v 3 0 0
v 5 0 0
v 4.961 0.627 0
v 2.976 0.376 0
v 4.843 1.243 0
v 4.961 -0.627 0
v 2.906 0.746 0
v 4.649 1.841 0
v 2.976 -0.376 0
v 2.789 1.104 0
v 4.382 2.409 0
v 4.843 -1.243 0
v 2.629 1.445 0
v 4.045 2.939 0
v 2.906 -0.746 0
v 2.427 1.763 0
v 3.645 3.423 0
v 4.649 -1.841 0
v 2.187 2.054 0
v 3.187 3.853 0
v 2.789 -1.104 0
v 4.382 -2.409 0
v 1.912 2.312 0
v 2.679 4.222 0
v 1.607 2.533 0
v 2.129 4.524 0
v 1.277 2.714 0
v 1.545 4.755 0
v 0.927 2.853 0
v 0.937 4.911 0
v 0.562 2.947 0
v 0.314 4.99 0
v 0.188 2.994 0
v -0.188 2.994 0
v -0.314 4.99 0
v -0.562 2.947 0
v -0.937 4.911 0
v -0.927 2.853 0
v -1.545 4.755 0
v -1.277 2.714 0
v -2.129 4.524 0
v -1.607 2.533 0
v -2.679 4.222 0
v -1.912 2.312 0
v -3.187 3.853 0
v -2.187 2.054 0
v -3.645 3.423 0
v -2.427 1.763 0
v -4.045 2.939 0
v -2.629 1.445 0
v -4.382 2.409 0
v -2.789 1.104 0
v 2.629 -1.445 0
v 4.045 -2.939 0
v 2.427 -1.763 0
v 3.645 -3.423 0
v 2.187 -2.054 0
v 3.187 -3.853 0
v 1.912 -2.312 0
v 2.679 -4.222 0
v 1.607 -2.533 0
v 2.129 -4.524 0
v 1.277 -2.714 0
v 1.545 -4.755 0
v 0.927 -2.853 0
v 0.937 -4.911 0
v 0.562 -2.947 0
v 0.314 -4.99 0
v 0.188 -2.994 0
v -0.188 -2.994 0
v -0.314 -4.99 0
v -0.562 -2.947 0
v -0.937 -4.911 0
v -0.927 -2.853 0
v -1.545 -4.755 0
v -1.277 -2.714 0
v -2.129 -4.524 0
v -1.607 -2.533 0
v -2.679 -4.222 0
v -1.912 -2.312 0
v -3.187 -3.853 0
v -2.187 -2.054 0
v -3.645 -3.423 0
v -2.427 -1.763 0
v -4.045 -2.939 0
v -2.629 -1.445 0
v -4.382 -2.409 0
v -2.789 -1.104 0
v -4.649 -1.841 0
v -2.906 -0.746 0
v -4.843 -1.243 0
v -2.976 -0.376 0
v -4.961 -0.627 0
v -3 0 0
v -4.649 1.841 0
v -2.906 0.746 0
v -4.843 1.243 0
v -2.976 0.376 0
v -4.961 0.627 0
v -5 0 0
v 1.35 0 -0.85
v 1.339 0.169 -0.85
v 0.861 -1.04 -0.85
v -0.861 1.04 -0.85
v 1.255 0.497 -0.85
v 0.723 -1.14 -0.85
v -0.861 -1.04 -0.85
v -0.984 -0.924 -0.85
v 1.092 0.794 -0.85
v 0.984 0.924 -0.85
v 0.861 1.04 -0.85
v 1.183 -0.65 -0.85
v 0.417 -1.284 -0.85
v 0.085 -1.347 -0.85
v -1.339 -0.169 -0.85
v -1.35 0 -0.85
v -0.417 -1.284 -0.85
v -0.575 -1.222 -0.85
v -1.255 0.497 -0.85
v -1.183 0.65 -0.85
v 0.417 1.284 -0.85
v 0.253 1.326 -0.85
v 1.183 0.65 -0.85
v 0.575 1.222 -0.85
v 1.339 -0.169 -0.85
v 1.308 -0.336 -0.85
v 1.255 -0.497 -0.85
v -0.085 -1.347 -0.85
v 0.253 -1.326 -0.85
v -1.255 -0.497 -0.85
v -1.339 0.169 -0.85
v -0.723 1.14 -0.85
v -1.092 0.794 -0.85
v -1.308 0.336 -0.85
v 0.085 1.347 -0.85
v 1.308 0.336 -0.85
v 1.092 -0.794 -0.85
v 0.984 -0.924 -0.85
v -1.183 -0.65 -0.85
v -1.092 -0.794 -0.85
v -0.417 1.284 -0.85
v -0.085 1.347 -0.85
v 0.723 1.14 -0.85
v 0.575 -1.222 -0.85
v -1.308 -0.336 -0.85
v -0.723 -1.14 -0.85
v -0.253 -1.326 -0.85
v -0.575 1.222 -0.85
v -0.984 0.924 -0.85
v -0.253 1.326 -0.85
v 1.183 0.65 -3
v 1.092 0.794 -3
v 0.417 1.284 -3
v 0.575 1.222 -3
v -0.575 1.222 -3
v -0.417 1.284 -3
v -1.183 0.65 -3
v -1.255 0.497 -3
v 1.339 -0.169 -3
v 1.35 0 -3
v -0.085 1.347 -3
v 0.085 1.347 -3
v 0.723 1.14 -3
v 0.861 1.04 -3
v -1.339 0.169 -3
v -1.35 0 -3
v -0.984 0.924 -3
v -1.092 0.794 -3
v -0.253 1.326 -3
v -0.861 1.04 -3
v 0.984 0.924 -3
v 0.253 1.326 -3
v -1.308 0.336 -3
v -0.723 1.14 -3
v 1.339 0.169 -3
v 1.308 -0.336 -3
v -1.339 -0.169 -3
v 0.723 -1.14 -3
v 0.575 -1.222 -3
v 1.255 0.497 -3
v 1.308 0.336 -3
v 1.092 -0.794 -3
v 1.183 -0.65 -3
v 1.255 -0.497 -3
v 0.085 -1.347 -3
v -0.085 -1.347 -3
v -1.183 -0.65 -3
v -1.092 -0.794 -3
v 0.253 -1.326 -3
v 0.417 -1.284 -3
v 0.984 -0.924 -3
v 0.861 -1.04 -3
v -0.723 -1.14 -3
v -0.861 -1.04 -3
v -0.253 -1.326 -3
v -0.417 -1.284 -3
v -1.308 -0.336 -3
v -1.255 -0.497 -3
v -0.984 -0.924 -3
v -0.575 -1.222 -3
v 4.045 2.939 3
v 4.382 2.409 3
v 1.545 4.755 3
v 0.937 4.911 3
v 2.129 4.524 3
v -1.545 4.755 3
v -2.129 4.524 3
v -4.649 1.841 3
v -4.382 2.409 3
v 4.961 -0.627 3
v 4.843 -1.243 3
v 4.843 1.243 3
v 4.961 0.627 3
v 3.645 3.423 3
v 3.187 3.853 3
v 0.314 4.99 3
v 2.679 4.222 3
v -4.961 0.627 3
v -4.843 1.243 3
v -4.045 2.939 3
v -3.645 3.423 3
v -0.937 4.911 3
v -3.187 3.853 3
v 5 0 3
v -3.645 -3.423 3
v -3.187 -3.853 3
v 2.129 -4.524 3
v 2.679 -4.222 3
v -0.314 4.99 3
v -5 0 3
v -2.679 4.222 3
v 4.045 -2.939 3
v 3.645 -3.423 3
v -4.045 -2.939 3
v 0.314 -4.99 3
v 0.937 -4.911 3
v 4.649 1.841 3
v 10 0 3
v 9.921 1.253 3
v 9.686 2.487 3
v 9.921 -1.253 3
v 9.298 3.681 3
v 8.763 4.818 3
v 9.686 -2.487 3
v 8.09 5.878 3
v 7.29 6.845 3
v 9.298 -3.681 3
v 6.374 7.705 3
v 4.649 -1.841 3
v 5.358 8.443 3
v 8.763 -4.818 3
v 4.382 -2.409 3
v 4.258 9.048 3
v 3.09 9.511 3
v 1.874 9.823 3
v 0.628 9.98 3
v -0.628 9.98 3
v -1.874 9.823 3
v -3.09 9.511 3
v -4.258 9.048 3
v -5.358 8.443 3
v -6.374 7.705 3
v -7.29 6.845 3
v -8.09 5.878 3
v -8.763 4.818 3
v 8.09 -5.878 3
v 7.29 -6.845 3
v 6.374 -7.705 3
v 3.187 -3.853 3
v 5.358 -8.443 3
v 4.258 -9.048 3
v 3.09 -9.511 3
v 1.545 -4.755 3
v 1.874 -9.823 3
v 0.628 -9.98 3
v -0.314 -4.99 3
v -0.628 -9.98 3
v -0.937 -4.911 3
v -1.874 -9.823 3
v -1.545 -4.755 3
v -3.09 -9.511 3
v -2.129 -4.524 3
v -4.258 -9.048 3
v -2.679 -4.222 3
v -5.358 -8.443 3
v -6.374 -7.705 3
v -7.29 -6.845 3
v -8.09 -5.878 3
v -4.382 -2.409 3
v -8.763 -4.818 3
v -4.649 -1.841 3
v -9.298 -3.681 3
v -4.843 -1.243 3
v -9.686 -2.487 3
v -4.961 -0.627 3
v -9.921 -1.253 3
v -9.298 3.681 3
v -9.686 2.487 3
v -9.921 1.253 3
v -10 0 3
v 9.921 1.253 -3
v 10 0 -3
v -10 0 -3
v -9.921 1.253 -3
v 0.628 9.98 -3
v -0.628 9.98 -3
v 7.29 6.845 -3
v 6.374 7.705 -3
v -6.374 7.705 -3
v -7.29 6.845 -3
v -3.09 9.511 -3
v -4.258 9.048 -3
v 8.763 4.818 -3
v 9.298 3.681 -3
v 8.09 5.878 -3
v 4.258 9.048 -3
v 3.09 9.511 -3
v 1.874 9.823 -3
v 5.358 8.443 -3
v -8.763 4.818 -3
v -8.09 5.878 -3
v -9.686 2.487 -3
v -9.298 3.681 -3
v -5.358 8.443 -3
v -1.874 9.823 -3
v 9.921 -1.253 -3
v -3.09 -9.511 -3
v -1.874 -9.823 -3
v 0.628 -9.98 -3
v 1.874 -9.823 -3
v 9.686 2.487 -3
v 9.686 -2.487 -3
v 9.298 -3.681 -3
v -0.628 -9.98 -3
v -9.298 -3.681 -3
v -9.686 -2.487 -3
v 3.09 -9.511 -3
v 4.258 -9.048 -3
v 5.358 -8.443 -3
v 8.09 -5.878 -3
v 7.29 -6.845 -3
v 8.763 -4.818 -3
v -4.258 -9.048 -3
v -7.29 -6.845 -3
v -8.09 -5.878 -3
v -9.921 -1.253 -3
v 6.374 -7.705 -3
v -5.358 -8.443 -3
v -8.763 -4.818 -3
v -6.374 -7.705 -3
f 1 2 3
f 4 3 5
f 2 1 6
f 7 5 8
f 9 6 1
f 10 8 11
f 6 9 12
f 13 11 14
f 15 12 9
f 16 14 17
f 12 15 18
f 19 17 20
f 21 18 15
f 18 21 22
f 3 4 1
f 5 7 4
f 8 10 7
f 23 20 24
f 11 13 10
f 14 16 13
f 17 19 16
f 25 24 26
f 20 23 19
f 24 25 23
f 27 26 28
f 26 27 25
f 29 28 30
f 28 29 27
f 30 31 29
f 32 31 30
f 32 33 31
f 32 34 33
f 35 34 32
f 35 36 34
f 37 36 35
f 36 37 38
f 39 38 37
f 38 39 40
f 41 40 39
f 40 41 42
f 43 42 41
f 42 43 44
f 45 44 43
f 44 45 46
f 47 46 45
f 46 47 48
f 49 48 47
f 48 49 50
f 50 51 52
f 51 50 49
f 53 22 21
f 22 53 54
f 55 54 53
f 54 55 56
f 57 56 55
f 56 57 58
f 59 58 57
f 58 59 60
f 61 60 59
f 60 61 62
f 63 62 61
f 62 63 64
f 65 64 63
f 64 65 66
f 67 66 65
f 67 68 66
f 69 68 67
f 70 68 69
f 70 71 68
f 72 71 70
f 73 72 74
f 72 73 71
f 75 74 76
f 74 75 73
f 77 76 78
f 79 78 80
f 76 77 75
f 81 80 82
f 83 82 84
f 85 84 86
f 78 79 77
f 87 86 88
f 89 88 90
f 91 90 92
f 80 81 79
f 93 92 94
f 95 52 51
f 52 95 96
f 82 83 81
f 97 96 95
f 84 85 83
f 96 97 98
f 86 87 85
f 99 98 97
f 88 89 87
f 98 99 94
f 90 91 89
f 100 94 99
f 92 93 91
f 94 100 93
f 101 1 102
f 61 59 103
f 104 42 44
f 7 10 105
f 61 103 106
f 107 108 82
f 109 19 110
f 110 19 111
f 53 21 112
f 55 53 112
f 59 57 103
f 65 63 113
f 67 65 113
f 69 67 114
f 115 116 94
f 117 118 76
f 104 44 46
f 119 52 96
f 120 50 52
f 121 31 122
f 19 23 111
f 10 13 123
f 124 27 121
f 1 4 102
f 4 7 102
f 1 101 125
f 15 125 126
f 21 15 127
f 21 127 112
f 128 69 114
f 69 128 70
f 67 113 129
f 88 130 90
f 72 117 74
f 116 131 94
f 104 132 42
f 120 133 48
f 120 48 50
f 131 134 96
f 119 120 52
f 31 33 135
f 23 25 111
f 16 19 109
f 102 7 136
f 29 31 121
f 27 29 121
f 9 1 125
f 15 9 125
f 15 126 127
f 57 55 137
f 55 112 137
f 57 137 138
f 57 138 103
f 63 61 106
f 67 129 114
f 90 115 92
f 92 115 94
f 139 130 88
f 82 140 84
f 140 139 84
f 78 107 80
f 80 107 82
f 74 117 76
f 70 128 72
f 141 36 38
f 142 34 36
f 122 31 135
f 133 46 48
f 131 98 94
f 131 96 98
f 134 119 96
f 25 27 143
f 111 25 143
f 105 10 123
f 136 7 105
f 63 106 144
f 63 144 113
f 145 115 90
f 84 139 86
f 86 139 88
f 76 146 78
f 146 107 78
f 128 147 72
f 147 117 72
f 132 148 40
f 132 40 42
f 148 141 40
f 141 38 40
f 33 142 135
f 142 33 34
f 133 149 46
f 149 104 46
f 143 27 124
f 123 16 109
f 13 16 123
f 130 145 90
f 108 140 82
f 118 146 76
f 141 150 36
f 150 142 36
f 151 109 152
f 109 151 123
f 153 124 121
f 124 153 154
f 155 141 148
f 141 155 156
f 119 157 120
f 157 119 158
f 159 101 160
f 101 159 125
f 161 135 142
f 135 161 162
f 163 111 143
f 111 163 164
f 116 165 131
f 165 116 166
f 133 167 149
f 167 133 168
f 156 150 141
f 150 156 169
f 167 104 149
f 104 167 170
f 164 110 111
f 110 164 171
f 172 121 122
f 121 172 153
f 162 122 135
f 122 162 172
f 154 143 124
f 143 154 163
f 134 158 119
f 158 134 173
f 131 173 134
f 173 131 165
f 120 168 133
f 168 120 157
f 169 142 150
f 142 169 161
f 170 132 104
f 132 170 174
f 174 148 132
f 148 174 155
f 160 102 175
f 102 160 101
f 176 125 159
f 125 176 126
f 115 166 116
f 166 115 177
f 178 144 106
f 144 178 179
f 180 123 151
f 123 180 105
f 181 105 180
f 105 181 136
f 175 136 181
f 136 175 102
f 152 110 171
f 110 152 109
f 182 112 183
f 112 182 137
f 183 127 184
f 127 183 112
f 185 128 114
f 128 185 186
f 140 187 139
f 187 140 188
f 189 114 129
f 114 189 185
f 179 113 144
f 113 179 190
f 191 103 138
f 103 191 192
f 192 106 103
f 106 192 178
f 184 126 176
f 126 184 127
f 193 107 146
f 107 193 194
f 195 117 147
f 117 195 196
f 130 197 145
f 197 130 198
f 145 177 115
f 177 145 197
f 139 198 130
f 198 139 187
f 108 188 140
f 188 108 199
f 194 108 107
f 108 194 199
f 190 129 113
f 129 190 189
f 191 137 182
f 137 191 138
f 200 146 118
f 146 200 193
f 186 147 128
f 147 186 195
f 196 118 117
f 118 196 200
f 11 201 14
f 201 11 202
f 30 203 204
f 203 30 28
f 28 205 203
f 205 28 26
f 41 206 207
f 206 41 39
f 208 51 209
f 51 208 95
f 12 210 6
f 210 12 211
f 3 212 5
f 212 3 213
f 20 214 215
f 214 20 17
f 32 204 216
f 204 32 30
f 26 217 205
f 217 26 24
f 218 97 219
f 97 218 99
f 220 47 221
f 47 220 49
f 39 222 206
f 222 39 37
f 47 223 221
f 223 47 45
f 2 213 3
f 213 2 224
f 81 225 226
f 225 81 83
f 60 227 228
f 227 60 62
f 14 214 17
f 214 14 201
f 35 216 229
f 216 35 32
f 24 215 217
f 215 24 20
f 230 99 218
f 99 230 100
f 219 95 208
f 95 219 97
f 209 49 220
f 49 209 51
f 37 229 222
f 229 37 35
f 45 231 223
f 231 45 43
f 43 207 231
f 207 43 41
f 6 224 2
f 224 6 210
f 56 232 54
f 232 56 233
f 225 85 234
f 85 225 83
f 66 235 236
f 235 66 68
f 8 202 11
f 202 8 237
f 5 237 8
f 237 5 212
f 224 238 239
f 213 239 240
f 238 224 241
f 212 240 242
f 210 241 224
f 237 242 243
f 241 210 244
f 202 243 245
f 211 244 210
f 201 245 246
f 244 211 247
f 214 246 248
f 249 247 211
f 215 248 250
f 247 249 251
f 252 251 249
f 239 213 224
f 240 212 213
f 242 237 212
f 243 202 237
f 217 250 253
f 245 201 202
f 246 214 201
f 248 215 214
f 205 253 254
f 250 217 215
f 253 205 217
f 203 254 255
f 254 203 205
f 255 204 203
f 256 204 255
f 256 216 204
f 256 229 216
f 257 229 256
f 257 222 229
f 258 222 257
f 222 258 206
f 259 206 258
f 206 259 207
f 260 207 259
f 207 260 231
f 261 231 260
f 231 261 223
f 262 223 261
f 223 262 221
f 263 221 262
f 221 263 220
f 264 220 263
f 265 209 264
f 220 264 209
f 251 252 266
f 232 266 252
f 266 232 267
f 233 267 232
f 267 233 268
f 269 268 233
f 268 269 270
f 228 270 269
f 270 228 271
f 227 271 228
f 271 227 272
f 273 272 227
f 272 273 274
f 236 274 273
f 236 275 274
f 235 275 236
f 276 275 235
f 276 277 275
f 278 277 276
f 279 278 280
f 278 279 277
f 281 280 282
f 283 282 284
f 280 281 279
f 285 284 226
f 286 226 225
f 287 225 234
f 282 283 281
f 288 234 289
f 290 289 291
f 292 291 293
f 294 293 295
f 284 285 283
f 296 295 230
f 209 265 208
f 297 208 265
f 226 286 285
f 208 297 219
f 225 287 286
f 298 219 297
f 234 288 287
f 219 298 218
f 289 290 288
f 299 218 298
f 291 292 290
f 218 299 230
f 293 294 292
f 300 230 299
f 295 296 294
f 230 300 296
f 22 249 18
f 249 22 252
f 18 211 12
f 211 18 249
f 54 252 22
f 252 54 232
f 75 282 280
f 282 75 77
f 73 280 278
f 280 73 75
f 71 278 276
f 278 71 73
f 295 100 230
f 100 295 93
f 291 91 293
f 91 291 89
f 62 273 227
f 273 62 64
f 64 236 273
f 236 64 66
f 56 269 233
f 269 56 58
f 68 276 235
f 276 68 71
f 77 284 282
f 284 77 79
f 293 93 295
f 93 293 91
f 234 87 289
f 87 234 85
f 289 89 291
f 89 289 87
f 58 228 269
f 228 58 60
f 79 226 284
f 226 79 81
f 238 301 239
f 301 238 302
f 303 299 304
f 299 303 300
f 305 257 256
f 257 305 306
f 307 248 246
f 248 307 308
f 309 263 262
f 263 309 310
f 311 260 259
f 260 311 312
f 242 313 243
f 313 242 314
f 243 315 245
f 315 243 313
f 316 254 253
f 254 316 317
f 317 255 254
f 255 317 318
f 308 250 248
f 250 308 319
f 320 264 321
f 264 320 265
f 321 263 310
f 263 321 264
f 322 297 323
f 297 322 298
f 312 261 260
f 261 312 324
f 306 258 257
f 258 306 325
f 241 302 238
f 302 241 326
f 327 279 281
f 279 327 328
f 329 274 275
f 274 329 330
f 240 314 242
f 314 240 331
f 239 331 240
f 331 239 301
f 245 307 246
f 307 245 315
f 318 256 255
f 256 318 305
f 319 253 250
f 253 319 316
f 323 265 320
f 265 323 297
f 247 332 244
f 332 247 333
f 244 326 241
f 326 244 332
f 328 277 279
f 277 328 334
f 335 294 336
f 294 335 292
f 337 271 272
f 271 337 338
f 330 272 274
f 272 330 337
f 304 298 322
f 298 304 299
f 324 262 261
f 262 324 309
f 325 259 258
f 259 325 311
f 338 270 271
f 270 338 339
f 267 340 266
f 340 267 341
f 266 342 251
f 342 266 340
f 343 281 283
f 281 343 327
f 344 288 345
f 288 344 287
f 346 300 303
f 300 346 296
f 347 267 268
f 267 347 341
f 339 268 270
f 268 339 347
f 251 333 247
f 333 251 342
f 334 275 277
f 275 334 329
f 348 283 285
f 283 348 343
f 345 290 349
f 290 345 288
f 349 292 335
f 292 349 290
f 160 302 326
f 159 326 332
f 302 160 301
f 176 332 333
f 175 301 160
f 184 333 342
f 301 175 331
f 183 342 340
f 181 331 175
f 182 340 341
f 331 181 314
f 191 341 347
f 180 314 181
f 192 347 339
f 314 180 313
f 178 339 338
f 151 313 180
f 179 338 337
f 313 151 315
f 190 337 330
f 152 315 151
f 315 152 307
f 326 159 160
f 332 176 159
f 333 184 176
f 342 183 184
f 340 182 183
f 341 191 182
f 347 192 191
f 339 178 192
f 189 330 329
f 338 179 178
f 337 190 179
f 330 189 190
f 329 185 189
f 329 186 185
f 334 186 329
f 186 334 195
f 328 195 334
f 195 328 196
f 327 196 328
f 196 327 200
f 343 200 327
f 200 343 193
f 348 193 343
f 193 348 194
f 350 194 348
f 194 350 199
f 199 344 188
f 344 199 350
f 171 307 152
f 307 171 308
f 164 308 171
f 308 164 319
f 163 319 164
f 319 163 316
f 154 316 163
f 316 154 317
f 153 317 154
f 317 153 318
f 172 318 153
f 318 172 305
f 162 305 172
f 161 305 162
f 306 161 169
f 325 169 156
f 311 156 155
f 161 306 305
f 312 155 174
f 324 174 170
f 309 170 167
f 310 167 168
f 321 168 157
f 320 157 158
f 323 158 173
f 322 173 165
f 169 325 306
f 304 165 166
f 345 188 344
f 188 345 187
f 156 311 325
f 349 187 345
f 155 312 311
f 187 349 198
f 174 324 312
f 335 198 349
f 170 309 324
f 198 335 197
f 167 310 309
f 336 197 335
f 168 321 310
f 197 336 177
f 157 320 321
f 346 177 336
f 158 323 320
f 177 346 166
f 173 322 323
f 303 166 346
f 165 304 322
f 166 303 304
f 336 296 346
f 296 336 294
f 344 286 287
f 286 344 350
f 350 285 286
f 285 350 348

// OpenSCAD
$fn = 50;

difference() {
	union() {
		translate(v = [0, 0, -3.0]) {
			cylinder(h = 6, r = 10.0);
		}
	}
	union() {
		translate(v = [0, 0, 0]) {
			rotate(a = [0, 0, 0]) {
				difference() {
					union() {
						translate(v = [0, 0, -6.0]) {
							cylinder(h = 6, r = 1.0);
						}
						translate(v = [0, 0, -0.85]) {
							cylinder(h = 0.85, r1 = 1.35, r2 = 3.0);
						}
						translate(v = [0, 0, -6.0]) {
							cylinder(h = 6, r = 1.35);
						}
						translate(v = [0, 0, -6.0]) {
							cylinder(h = 6, r = 1.0);
						}
					}
					union();
				}
			}
		}
		#cylinder(h = 3, r = 5.0);
	}
}
